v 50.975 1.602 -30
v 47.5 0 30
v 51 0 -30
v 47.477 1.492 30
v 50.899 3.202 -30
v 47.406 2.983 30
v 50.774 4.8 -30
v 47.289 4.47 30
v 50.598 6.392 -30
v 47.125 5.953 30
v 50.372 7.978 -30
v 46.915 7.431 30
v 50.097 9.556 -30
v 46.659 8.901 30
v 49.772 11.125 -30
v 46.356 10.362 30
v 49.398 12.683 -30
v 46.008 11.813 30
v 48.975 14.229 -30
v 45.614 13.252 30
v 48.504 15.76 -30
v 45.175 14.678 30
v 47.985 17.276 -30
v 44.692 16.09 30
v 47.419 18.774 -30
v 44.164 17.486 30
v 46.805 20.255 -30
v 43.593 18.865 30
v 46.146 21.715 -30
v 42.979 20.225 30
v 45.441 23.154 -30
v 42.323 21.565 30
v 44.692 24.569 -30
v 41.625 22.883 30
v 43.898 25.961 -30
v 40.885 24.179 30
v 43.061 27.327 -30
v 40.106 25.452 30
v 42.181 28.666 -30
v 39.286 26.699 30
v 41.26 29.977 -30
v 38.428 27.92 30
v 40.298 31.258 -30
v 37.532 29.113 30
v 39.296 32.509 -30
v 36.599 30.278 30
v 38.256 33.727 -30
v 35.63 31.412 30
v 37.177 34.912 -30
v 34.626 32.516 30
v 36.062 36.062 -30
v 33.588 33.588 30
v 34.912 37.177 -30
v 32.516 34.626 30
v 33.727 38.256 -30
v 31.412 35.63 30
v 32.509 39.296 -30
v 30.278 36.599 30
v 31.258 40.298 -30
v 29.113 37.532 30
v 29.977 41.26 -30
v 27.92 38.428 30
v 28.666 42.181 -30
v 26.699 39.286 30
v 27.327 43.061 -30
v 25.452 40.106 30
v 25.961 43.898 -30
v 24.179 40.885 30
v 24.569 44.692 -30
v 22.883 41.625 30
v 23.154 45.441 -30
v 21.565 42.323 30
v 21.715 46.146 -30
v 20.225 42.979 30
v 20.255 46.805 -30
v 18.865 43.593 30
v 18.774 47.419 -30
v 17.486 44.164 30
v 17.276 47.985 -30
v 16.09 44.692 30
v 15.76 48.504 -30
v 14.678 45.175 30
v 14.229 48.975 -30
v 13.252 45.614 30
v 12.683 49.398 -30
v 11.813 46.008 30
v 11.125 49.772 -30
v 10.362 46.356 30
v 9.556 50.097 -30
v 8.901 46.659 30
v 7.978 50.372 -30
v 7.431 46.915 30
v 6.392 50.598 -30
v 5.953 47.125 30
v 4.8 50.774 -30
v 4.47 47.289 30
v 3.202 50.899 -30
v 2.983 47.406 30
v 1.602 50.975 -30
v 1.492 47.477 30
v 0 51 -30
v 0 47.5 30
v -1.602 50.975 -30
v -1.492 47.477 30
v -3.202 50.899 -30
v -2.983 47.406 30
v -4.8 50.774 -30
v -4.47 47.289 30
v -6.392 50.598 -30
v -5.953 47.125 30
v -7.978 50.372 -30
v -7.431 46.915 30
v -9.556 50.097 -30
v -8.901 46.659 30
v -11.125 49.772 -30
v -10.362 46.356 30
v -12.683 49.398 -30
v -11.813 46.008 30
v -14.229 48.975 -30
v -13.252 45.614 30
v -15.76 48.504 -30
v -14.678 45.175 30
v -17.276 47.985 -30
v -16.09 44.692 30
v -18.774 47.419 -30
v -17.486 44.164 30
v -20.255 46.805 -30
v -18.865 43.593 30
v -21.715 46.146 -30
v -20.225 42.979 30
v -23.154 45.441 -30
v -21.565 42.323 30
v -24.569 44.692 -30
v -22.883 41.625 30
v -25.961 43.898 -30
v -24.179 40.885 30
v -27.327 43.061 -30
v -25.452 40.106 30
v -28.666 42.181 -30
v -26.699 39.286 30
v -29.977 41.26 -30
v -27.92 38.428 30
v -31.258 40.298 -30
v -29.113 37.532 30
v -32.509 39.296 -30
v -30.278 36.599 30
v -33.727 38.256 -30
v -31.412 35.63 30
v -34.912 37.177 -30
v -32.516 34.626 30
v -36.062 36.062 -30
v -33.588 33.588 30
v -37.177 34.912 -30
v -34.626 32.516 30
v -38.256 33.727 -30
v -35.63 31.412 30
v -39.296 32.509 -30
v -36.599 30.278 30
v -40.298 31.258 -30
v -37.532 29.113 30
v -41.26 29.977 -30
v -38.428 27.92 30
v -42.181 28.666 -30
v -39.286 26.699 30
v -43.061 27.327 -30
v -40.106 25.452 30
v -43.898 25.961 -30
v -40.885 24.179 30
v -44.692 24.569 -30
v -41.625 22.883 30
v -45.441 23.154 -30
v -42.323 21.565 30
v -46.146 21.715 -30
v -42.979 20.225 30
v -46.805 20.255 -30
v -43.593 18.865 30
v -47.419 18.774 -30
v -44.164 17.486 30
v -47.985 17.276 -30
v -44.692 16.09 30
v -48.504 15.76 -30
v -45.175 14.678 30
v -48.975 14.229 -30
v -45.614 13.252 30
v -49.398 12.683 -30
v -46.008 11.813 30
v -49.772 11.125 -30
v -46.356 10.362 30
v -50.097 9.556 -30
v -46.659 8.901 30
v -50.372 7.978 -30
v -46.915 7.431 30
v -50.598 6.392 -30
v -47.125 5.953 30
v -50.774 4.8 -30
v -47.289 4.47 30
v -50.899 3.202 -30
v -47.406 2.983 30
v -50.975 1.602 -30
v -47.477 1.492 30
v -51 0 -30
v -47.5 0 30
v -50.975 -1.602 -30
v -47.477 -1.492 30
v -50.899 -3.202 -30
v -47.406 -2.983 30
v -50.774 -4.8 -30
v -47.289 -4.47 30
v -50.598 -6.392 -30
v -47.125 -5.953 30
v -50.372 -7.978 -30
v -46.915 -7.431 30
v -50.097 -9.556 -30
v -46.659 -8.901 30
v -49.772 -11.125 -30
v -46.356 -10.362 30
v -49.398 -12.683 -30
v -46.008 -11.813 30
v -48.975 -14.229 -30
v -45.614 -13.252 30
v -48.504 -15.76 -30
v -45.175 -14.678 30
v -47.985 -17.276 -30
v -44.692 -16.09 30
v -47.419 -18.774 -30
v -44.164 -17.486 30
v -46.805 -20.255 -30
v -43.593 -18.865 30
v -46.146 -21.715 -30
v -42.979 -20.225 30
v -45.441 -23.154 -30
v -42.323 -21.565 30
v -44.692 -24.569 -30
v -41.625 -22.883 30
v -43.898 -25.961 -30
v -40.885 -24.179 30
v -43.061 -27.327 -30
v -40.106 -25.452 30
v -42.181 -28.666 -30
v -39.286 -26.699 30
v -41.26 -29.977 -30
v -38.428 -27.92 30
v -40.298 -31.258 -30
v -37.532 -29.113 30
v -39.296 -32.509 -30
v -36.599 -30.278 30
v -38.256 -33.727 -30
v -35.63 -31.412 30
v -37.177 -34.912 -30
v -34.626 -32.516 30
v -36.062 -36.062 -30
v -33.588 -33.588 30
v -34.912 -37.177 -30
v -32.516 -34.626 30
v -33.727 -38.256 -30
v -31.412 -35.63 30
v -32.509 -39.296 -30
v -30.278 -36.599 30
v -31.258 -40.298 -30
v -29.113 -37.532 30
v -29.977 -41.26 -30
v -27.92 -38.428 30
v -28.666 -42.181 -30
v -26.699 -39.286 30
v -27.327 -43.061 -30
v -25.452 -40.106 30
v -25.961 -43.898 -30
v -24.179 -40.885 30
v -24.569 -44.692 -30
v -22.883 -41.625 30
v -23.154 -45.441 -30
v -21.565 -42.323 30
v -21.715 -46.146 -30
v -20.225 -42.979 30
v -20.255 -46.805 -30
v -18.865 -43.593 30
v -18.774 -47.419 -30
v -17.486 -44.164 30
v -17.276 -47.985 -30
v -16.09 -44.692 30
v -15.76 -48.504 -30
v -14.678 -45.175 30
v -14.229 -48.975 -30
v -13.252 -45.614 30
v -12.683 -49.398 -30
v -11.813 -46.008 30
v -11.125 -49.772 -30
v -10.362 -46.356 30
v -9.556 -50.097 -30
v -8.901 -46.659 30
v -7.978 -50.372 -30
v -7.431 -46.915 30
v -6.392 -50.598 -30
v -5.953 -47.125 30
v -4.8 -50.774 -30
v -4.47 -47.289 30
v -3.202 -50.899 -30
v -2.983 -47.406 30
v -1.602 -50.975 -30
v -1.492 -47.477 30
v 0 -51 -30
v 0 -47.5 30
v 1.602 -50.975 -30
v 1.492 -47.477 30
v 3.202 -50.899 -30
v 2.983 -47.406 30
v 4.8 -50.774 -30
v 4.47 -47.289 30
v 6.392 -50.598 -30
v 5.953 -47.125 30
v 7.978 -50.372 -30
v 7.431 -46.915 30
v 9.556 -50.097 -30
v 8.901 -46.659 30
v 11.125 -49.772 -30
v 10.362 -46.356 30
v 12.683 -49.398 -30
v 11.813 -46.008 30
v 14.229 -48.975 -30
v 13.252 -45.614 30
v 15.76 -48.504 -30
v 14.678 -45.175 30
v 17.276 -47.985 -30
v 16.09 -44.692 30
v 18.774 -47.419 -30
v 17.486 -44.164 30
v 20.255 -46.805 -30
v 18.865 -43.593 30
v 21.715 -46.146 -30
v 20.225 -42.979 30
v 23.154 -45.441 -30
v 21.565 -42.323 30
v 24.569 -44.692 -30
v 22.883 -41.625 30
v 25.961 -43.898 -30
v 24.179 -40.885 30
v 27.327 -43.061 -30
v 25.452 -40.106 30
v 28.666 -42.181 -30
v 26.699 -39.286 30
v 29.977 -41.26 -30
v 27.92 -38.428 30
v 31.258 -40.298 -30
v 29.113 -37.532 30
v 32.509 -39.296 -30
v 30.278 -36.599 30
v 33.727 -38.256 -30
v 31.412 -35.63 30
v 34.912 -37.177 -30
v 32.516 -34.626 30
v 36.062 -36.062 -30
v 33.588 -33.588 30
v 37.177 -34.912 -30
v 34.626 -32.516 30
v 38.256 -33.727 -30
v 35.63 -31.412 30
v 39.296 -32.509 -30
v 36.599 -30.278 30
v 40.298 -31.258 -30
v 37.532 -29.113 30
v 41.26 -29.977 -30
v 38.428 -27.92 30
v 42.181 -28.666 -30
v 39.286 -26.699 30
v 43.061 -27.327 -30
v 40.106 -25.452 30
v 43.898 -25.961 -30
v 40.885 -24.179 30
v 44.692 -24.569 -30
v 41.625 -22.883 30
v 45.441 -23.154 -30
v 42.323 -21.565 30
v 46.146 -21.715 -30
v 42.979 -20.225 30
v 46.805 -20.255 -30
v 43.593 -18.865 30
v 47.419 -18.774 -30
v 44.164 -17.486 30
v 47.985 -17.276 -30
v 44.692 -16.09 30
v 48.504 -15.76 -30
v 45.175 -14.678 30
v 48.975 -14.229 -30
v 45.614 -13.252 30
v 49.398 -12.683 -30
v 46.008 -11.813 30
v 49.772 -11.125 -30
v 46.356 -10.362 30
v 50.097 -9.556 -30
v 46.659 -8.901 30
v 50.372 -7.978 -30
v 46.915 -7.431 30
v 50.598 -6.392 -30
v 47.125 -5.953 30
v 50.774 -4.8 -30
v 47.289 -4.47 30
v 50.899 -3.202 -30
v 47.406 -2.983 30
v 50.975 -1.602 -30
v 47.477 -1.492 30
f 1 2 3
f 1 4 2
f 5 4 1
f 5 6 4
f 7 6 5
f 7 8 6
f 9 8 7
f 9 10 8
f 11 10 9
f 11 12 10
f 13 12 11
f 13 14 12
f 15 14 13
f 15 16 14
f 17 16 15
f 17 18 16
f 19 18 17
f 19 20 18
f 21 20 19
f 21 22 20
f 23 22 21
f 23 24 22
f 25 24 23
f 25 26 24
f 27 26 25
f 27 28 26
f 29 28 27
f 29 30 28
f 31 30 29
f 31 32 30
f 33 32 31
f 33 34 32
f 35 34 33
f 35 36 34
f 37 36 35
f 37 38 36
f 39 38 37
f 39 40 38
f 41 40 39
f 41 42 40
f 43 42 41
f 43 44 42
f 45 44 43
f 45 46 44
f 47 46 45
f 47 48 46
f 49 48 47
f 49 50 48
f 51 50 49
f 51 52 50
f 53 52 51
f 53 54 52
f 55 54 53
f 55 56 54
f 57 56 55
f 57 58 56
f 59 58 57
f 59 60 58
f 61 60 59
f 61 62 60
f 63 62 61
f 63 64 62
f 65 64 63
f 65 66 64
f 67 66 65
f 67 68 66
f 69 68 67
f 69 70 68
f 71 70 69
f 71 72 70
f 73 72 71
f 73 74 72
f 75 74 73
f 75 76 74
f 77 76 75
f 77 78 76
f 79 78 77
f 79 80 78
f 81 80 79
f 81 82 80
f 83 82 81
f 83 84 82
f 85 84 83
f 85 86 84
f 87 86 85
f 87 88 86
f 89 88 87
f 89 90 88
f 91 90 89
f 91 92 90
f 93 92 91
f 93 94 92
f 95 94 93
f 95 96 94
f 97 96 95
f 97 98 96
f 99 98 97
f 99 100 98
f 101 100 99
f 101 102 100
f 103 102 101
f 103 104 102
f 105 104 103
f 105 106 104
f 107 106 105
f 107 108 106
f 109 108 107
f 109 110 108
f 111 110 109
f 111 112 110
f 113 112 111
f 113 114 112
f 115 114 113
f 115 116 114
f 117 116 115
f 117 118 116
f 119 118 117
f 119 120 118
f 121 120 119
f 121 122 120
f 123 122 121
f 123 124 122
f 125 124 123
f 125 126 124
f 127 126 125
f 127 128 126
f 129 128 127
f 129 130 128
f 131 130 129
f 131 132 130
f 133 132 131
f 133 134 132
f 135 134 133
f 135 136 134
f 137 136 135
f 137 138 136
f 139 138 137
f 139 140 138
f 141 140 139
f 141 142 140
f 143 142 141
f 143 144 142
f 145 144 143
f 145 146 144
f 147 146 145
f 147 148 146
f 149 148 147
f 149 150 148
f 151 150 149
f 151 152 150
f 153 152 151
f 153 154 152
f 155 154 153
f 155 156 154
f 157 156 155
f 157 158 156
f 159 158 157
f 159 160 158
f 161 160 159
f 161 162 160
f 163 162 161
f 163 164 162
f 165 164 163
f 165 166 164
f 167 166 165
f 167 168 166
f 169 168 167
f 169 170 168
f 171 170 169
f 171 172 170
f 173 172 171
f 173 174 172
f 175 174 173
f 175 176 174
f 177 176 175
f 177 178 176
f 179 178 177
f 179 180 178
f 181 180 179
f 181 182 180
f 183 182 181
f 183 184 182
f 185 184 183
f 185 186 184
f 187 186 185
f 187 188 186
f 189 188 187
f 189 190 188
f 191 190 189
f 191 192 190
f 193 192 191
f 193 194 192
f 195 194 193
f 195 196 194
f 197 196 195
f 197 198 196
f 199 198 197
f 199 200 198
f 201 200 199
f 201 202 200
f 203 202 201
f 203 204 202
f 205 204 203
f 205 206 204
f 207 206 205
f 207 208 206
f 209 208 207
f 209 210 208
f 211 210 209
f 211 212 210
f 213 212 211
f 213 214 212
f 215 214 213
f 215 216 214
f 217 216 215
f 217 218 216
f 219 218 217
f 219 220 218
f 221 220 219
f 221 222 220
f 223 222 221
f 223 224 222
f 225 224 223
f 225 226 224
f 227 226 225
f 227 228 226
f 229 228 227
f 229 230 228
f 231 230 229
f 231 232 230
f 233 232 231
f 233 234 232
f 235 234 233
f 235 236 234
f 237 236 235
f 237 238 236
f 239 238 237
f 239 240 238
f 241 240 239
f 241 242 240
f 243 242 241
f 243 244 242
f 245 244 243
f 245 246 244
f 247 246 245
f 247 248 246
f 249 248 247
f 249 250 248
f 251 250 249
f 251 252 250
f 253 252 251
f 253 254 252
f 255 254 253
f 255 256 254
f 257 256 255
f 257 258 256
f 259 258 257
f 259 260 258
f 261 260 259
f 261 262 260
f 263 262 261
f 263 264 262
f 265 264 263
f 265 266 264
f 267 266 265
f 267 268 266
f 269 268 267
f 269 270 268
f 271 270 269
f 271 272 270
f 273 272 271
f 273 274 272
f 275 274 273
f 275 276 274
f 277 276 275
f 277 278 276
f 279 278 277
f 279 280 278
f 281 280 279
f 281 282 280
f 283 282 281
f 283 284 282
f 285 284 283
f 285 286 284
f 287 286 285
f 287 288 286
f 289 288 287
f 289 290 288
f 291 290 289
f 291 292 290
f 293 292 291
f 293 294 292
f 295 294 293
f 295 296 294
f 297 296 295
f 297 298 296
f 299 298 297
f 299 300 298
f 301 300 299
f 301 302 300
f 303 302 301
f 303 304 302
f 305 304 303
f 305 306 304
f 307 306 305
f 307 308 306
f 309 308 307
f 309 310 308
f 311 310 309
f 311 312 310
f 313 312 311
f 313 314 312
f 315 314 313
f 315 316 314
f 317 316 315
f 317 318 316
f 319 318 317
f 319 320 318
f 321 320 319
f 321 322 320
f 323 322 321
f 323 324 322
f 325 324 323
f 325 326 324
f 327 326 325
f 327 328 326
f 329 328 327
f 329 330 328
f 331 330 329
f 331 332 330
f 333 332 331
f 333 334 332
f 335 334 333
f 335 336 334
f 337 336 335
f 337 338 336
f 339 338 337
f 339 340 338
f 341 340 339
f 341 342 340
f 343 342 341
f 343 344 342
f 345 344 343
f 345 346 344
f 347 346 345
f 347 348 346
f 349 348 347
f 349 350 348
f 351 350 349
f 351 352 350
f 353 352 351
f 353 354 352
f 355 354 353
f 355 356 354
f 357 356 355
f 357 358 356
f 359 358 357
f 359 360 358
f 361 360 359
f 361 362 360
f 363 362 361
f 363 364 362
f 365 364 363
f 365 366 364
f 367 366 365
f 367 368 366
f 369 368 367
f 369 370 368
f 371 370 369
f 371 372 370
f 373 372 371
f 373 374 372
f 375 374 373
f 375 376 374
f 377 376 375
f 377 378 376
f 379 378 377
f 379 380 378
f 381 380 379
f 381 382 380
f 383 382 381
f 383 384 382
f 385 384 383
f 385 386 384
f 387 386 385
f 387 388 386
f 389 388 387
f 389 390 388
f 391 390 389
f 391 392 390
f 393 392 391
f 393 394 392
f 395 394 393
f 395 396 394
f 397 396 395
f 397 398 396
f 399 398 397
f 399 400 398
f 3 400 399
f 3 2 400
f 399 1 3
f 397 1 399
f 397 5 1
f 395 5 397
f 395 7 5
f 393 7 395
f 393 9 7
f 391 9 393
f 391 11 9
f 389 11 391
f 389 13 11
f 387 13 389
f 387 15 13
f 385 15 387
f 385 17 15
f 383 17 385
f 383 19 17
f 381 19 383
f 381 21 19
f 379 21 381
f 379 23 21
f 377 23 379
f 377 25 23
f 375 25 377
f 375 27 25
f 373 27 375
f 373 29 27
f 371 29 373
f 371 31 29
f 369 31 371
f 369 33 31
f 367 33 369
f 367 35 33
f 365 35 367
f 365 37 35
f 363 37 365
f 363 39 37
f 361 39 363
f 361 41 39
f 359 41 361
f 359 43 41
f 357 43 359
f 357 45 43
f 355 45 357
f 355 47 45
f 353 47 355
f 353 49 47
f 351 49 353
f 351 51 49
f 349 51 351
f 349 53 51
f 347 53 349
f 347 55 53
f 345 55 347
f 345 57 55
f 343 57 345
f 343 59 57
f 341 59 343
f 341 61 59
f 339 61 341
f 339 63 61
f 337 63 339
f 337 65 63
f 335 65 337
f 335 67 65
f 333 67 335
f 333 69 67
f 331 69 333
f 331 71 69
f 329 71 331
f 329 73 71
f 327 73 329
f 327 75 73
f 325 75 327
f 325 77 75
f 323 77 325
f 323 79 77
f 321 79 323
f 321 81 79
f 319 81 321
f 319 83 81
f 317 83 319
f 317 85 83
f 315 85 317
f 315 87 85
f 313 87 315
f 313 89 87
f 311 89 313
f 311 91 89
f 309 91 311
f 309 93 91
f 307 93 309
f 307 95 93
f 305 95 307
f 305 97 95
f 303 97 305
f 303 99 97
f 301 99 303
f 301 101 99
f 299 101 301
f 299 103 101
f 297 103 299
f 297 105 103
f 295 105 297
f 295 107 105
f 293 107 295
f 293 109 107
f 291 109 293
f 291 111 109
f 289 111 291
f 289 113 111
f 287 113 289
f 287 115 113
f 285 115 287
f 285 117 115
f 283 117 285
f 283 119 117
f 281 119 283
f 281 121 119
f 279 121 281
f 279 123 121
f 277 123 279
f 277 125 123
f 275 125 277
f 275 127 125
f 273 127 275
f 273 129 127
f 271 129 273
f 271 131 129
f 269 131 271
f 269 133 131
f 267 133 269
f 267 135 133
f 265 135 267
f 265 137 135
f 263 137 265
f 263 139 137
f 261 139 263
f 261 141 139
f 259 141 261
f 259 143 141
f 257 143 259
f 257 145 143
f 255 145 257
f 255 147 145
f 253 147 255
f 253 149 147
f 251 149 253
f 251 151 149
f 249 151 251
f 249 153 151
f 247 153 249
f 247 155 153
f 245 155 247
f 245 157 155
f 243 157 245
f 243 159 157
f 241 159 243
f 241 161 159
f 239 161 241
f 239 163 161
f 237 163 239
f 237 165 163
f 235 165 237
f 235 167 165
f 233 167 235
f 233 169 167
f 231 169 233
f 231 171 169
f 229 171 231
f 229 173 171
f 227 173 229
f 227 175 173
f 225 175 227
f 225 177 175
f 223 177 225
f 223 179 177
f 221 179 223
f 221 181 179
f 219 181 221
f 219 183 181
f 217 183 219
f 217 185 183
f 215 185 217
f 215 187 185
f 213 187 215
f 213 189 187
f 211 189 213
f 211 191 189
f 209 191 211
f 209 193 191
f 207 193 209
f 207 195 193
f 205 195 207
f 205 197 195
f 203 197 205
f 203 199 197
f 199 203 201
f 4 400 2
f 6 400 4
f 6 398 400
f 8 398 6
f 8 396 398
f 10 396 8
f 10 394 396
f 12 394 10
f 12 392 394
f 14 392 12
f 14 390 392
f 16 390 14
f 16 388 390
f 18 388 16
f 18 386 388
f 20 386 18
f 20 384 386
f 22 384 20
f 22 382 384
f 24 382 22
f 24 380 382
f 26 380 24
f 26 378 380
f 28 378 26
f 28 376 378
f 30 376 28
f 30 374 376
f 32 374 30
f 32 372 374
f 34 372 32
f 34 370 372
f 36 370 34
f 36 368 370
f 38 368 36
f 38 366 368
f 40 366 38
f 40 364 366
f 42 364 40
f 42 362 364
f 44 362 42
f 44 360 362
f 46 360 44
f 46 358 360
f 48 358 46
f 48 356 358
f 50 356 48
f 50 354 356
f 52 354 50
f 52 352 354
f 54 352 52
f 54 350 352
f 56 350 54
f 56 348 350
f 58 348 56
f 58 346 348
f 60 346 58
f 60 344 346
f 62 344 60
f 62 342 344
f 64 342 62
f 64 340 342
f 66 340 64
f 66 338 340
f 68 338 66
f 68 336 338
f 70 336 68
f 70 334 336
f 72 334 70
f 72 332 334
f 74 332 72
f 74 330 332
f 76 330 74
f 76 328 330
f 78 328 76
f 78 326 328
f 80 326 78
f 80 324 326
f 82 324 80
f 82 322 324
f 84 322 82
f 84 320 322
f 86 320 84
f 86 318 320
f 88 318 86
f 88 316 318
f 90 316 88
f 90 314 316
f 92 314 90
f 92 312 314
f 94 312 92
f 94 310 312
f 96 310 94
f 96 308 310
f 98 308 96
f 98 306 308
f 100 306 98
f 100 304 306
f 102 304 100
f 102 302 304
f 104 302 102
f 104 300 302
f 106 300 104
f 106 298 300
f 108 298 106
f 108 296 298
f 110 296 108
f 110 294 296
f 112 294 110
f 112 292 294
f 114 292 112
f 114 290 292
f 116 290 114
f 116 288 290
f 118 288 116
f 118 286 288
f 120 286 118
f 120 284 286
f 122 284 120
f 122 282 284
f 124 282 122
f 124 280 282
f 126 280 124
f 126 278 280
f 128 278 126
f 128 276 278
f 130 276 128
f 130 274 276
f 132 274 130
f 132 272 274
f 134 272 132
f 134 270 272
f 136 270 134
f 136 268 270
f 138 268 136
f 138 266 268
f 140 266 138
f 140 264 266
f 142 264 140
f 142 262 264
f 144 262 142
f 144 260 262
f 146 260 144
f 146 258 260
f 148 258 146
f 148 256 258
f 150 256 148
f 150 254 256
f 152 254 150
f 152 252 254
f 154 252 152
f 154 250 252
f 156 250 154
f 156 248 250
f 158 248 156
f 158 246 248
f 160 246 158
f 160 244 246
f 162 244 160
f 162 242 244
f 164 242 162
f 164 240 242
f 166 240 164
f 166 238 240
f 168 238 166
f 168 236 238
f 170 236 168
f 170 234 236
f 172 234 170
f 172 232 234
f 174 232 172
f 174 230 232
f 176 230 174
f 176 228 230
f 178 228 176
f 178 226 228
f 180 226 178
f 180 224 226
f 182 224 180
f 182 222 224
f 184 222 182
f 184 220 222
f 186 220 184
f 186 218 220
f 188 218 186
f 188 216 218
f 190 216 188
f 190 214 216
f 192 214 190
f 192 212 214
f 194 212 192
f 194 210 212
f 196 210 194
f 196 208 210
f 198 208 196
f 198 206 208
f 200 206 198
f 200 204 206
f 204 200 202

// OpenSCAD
$fn = 200;

    
cylinder(h = 60, r1=102/2, r2=95/2, center = true);
